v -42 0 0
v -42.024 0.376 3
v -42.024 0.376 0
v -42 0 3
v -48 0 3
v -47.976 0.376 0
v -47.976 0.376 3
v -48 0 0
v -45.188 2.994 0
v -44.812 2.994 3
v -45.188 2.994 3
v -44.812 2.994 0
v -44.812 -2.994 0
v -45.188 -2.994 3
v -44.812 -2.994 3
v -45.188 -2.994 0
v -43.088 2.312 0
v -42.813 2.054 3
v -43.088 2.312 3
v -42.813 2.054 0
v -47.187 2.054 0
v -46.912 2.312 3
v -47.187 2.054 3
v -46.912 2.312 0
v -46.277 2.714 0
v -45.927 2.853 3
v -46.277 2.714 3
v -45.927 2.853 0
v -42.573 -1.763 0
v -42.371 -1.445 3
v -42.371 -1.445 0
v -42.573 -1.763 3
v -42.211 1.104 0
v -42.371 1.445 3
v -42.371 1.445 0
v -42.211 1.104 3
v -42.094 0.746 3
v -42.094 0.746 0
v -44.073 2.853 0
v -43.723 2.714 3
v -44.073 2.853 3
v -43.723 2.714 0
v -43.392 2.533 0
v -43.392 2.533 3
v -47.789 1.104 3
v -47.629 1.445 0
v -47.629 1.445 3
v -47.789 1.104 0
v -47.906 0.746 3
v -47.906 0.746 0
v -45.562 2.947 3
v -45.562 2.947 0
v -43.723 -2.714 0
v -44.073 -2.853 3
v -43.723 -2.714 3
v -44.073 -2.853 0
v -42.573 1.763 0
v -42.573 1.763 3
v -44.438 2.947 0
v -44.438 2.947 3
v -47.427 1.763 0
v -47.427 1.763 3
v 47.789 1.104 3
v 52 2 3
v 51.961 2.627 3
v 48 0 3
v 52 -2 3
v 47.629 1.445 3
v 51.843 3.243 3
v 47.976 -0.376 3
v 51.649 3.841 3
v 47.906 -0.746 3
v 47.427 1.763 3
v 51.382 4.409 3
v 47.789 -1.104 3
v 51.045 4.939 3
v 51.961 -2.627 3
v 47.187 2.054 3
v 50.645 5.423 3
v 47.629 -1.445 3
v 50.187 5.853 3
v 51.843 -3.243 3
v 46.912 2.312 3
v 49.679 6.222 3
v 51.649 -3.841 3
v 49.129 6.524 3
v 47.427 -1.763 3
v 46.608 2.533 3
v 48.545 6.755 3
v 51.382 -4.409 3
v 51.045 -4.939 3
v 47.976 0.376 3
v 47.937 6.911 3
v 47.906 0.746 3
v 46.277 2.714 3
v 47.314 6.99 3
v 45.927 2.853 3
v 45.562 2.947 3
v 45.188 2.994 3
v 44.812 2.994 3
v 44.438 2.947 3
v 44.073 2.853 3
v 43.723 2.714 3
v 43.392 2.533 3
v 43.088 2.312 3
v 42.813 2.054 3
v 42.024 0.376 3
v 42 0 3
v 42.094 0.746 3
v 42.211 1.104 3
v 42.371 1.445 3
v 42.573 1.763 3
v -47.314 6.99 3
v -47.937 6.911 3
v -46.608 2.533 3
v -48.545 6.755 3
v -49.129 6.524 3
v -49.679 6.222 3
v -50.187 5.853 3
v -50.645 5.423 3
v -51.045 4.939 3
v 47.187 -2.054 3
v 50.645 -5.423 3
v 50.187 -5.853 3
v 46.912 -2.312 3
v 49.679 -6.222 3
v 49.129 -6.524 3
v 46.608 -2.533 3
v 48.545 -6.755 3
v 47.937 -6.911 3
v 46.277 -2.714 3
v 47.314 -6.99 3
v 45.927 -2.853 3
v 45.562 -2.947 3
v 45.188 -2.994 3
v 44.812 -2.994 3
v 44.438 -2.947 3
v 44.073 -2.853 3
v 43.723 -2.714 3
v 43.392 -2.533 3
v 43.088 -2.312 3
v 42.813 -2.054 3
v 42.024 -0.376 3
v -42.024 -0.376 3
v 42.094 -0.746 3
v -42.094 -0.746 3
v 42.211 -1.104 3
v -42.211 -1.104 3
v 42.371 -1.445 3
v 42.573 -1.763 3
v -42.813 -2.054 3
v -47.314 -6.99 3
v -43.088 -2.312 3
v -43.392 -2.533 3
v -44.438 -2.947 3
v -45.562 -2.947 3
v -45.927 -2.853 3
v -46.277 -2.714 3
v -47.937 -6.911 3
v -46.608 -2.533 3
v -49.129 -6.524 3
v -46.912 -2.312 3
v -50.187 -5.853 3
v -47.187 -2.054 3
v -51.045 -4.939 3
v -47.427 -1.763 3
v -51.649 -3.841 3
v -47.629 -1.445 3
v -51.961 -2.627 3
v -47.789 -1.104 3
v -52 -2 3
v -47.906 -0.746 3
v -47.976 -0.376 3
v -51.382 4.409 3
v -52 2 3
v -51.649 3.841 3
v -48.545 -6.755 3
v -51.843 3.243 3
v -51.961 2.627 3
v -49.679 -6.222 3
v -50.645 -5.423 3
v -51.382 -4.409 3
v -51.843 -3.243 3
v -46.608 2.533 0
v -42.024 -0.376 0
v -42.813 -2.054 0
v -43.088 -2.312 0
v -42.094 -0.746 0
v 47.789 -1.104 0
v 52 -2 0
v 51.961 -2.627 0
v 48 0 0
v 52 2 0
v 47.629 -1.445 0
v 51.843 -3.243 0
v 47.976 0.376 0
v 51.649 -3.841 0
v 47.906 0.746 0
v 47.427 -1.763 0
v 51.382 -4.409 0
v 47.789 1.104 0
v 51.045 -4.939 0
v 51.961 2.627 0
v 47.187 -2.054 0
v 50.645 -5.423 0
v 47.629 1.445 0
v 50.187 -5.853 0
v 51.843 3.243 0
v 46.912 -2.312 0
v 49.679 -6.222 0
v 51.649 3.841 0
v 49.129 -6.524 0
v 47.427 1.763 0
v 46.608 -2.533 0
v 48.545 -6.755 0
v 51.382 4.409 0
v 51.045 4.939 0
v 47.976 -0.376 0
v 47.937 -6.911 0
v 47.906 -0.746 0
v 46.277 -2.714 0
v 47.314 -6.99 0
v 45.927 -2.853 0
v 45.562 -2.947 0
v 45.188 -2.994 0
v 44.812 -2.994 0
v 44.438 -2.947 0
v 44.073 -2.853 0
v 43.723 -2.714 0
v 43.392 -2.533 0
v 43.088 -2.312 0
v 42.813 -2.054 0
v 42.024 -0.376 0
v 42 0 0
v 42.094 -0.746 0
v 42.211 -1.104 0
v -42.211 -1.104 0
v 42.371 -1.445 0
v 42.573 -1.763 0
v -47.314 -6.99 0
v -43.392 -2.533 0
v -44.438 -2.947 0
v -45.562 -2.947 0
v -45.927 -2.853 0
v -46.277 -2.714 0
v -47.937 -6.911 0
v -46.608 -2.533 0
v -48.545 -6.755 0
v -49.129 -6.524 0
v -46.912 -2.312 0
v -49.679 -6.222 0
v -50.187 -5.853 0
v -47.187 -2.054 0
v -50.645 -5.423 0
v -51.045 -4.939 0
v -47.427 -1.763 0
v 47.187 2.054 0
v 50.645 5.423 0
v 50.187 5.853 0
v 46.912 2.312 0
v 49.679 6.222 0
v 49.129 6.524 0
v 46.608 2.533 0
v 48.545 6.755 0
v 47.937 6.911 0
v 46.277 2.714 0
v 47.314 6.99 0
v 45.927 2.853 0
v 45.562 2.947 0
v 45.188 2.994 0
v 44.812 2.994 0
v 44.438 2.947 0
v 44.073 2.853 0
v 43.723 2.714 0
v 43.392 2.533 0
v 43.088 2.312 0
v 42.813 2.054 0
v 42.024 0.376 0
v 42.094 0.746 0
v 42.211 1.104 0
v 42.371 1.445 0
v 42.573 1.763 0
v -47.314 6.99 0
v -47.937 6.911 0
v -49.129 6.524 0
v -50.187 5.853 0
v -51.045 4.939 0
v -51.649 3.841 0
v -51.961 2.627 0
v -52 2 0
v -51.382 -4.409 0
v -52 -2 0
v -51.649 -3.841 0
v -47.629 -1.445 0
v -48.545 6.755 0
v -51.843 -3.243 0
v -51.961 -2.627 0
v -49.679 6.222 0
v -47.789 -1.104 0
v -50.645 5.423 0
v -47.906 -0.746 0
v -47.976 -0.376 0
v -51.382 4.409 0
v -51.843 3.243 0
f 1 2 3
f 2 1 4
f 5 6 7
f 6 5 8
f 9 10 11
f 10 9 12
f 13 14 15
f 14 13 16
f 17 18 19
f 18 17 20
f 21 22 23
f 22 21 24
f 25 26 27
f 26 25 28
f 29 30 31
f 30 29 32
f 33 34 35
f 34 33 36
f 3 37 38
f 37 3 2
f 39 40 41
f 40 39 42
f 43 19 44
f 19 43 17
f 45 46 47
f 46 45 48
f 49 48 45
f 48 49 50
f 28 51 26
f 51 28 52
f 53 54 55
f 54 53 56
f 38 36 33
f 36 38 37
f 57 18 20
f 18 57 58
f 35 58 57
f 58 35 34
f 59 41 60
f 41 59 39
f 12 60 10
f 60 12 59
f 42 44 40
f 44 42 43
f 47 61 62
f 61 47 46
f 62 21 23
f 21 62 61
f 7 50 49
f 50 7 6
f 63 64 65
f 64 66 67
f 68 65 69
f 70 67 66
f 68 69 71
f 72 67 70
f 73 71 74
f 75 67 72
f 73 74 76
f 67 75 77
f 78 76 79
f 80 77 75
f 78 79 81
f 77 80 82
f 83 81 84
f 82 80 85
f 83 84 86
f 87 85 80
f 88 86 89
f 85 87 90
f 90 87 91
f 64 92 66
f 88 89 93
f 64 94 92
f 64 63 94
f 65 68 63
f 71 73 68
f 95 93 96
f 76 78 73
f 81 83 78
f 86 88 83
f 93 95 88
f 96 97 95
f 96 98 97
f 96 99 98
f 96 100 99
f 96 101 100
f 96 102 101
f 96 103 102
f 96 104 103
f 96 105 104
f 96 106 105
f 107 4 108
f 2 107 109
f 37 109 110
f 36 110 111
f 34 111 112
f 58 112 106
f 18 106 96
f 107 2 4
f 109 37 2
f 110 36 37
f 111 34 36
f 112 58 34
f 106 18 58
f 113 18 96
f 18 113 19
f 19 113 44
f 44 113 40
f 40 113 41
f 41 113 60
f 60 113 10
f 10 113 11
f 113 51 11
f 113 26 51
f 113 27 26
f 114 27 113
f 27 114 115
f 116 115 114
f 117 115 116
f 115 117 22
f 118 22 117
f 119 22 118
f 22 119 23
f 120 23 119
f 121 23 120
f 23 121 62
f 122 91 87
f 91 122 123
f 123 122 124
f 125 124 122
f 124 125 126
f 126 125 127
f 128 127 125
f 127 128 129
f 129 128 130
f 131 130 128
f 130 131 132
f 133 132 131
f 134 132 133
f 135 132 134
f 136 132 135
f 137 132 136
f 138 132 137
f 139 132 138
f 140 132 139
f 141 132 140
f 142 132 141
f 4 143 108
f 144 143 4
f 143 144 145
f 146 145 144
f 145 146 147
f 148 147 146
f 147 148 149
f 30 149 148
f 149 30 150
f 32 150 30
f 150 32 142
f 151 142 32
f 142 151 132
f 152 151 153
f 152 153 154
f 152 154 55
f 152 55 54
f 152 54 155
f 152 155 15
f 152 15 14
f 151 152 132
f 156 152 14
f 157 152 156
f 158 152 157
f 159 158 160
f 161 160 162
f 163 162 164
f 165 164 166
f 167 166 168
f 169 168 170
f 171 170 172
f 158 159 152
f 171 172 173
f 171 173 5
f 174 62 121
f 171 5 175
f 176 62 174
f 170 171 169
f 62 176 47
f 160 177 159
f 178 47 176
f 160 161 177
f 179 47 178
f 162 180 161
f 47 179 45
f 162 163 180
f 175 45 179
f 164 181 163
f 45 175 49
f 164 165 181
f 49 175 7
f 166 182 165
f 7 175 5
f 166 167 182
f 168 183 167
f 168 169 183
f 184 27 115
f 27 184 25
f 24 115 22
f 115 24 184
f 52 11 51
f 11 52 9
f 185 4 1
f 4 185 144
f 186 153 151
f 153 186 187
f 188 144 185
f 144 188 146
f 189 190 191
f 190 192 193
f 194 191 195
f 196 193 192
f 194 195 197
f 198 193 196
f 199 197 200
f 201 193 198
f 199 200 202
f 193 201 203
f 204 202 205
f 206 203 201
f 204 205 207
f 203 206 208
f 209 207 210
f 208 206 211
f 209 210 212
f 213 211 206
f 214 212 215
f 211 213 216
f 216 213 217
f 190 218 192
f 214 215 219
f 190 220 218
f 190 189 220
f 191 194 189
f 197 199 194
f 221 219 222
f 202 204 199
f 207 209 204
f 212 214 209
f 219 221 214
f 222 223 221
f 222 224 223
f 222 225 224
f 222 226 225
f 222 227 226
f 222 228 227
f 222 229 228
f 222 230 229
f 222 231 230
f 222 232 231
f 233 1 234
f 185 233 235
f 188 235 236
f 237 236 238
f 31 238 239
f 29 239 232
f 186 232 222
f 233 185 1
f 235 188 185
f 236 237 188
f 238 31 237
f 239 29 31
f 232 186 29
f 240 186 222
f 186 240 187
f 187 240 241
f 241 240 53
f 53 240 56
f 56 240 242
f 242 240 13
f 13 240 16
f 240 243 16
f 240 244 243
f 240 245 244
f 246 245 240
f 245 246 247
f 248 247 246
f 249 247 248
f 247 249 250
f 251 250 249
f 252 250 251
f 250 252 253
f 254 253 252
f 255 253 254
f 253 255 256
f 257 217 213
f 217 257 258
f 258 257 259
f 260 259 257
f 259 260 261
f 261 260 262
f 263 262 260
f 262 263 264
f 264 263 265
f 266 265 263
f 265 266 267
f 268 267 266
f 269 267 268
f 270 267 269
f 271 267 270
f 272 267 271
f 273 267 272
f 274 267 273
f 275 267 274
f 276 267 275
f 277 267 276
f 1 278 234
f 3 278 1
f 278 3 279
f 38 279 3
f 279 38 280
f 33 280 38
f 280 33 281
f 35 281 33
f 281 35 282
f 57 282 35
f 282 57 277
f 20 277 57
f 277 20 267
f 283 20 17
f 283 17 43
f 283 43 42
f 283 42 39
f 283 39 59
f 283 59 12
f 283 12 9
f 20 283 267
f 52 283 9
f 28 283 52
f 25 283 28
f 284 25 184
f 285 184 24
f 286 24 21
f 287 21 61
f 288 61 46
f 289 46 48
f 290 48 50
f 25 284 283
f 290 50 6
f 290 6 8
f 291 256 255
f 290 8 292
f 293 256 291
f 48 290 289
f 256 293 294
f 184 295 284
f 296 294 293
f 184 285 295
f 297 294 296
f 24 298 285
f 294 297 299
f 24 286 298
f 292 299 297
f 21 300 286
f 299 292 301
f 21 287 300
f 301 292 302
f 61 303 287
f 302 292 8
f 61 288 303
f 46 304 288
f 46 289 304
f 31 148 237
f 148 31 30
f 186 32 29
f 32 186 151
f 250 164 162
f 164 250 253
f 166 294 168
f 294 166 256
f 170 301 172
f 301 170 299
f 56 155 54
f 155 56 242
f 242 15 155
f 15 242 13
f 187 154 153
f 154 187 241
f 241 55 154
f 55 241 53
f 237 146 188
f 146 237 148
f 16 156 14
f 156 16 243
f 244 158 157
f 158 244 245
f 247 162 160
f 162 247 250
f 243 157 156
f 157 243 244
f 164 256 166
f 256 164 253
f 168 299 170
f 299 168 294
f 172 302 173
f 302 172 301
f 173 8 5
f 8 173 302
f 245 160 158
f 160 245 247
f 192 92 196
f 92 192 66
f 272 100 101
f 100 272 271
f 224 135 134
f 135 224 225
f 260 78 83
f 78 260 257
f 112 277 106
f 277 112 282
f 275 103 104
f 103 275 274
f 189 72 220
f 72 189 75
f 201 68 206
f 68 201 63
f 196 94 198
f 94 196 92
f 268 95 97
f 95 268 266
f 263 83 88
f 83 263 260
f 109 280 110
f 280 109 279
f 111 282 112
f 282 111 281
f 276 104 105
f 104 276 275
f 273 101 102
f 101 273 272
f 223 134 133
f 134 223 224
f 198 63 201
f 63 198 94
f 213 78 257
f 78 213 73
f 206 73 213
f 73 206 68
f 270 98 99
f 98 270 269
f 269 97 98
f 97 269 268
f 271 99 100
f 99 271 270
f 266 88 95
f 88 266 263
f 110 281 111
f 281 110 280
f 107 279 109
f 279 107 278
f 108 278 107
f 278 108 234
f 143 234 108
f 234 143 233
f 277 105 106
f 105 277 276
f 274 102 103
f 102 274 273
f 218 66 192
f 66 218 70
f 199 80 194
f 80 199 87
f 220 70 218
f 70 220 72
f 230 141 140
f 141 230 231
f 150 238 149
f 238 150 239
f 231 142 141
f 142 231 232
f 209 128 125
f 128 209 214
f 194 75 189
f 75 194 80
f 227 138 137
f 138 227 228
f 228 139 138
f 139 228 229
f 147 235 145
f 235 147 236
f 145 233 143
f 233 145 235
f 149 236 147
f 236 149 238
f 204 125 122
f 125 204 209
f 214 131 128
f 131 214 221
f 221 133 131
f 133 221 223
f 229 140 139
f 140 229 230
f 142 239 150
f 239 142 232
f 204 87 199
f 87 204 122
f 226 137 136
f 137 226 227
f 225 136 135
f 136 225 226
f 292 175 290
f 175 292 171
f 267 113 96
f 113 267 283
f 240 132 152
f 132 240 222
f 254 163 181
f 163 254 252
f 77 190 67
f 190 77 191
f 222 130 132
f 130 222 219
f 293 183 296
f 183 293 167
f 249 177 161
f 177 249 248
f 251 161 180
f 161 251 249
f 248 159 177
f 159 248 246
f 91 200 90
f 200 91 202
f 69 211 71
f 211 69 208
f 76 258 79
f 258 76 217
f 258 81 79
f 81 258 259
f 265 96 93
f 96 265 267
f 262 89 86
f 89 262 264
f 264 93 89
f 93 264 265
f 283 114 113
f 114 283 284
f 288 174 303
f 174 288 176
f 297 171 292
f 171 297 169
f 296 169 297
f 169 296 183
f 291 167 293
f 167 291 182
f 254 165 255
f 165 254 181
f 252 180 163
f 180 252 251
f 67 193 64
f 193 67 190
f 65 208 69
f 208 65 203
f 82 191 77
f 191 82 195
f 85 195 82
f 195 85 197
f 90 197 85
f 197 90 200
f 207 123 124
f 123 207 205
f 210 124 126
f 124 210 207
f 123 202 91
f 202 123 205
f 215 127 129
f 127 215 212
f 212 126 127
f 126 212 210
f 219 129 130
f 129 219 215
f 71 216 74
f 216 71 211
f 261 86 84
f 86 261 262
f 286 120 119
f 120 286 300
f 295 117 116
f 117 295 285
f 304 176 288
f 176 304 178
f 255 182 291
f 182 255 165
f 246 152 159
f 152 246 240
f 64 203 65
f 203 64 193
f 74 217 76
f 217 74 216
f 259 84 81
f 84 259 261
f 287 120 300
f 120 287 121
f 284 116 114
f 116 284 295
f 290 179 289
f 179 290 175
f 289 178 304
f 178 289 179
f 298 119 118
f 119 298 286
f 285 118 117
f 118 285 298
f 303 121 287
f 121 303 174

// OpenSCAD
$fn = 50;


difference() {
	union() {
		hull() {
			translate(v = [-47.0000000000, 2.0000000000, 0]) {
				cylinder(h = 3, r = 5);
			}
			translate(v = [47.0000000000, 2.0000000000, 0]) {
				cylinder(h = 3, r = 5);
			}
			translate(v = [-47.0000000000, -2.0000000000, 0]) {
				cylinder(h = 3, r = 5);
			}
			translate(v = [47.0000000000, -2.0000000000, 0]) {
				cylinder(h = 3, r = 5);
			}
		}
	}
	union() {
		translate(v = [-45.0000000000, 0.0000000000, 0]) {
			cylinder(h = 3, r = 3.0000000000);
		}
		translate(v = [45.0000000000, 0.0000000000, 0]) {
			cylinder(h = 3, r = 3.0000000000);
		}
		translate(v = [-45.0000000000, 0.0000000000, 0]) {
			cylinder(h = 3, r = 1.5000000000);
		}
		translate(v = [45.0000000000, 0.0000000000, 0]) {
			cylinder(h = 3, r = 1.5000000000);
		}
		translate(v = [-45.0000000000, 0.0000000000, 0]) {
			cylinder(h = 3, r = 1.5000000000);
		}
		translate(v = [45.0000000000, 0.0000000000, 0]) {
			cylinder(h = 3, r = 1.5000000000);
		}
		translate(v = [-45.0000000000, 0.0000000000, 0]) {
			cylinder(h = 3, r = 1.5000000000);
		}
		translate(v = [45.0000000000, 0.0000000000, 0]) {
			cylinder(h = 3, r = 1.5000000000);
		}
	}
}
